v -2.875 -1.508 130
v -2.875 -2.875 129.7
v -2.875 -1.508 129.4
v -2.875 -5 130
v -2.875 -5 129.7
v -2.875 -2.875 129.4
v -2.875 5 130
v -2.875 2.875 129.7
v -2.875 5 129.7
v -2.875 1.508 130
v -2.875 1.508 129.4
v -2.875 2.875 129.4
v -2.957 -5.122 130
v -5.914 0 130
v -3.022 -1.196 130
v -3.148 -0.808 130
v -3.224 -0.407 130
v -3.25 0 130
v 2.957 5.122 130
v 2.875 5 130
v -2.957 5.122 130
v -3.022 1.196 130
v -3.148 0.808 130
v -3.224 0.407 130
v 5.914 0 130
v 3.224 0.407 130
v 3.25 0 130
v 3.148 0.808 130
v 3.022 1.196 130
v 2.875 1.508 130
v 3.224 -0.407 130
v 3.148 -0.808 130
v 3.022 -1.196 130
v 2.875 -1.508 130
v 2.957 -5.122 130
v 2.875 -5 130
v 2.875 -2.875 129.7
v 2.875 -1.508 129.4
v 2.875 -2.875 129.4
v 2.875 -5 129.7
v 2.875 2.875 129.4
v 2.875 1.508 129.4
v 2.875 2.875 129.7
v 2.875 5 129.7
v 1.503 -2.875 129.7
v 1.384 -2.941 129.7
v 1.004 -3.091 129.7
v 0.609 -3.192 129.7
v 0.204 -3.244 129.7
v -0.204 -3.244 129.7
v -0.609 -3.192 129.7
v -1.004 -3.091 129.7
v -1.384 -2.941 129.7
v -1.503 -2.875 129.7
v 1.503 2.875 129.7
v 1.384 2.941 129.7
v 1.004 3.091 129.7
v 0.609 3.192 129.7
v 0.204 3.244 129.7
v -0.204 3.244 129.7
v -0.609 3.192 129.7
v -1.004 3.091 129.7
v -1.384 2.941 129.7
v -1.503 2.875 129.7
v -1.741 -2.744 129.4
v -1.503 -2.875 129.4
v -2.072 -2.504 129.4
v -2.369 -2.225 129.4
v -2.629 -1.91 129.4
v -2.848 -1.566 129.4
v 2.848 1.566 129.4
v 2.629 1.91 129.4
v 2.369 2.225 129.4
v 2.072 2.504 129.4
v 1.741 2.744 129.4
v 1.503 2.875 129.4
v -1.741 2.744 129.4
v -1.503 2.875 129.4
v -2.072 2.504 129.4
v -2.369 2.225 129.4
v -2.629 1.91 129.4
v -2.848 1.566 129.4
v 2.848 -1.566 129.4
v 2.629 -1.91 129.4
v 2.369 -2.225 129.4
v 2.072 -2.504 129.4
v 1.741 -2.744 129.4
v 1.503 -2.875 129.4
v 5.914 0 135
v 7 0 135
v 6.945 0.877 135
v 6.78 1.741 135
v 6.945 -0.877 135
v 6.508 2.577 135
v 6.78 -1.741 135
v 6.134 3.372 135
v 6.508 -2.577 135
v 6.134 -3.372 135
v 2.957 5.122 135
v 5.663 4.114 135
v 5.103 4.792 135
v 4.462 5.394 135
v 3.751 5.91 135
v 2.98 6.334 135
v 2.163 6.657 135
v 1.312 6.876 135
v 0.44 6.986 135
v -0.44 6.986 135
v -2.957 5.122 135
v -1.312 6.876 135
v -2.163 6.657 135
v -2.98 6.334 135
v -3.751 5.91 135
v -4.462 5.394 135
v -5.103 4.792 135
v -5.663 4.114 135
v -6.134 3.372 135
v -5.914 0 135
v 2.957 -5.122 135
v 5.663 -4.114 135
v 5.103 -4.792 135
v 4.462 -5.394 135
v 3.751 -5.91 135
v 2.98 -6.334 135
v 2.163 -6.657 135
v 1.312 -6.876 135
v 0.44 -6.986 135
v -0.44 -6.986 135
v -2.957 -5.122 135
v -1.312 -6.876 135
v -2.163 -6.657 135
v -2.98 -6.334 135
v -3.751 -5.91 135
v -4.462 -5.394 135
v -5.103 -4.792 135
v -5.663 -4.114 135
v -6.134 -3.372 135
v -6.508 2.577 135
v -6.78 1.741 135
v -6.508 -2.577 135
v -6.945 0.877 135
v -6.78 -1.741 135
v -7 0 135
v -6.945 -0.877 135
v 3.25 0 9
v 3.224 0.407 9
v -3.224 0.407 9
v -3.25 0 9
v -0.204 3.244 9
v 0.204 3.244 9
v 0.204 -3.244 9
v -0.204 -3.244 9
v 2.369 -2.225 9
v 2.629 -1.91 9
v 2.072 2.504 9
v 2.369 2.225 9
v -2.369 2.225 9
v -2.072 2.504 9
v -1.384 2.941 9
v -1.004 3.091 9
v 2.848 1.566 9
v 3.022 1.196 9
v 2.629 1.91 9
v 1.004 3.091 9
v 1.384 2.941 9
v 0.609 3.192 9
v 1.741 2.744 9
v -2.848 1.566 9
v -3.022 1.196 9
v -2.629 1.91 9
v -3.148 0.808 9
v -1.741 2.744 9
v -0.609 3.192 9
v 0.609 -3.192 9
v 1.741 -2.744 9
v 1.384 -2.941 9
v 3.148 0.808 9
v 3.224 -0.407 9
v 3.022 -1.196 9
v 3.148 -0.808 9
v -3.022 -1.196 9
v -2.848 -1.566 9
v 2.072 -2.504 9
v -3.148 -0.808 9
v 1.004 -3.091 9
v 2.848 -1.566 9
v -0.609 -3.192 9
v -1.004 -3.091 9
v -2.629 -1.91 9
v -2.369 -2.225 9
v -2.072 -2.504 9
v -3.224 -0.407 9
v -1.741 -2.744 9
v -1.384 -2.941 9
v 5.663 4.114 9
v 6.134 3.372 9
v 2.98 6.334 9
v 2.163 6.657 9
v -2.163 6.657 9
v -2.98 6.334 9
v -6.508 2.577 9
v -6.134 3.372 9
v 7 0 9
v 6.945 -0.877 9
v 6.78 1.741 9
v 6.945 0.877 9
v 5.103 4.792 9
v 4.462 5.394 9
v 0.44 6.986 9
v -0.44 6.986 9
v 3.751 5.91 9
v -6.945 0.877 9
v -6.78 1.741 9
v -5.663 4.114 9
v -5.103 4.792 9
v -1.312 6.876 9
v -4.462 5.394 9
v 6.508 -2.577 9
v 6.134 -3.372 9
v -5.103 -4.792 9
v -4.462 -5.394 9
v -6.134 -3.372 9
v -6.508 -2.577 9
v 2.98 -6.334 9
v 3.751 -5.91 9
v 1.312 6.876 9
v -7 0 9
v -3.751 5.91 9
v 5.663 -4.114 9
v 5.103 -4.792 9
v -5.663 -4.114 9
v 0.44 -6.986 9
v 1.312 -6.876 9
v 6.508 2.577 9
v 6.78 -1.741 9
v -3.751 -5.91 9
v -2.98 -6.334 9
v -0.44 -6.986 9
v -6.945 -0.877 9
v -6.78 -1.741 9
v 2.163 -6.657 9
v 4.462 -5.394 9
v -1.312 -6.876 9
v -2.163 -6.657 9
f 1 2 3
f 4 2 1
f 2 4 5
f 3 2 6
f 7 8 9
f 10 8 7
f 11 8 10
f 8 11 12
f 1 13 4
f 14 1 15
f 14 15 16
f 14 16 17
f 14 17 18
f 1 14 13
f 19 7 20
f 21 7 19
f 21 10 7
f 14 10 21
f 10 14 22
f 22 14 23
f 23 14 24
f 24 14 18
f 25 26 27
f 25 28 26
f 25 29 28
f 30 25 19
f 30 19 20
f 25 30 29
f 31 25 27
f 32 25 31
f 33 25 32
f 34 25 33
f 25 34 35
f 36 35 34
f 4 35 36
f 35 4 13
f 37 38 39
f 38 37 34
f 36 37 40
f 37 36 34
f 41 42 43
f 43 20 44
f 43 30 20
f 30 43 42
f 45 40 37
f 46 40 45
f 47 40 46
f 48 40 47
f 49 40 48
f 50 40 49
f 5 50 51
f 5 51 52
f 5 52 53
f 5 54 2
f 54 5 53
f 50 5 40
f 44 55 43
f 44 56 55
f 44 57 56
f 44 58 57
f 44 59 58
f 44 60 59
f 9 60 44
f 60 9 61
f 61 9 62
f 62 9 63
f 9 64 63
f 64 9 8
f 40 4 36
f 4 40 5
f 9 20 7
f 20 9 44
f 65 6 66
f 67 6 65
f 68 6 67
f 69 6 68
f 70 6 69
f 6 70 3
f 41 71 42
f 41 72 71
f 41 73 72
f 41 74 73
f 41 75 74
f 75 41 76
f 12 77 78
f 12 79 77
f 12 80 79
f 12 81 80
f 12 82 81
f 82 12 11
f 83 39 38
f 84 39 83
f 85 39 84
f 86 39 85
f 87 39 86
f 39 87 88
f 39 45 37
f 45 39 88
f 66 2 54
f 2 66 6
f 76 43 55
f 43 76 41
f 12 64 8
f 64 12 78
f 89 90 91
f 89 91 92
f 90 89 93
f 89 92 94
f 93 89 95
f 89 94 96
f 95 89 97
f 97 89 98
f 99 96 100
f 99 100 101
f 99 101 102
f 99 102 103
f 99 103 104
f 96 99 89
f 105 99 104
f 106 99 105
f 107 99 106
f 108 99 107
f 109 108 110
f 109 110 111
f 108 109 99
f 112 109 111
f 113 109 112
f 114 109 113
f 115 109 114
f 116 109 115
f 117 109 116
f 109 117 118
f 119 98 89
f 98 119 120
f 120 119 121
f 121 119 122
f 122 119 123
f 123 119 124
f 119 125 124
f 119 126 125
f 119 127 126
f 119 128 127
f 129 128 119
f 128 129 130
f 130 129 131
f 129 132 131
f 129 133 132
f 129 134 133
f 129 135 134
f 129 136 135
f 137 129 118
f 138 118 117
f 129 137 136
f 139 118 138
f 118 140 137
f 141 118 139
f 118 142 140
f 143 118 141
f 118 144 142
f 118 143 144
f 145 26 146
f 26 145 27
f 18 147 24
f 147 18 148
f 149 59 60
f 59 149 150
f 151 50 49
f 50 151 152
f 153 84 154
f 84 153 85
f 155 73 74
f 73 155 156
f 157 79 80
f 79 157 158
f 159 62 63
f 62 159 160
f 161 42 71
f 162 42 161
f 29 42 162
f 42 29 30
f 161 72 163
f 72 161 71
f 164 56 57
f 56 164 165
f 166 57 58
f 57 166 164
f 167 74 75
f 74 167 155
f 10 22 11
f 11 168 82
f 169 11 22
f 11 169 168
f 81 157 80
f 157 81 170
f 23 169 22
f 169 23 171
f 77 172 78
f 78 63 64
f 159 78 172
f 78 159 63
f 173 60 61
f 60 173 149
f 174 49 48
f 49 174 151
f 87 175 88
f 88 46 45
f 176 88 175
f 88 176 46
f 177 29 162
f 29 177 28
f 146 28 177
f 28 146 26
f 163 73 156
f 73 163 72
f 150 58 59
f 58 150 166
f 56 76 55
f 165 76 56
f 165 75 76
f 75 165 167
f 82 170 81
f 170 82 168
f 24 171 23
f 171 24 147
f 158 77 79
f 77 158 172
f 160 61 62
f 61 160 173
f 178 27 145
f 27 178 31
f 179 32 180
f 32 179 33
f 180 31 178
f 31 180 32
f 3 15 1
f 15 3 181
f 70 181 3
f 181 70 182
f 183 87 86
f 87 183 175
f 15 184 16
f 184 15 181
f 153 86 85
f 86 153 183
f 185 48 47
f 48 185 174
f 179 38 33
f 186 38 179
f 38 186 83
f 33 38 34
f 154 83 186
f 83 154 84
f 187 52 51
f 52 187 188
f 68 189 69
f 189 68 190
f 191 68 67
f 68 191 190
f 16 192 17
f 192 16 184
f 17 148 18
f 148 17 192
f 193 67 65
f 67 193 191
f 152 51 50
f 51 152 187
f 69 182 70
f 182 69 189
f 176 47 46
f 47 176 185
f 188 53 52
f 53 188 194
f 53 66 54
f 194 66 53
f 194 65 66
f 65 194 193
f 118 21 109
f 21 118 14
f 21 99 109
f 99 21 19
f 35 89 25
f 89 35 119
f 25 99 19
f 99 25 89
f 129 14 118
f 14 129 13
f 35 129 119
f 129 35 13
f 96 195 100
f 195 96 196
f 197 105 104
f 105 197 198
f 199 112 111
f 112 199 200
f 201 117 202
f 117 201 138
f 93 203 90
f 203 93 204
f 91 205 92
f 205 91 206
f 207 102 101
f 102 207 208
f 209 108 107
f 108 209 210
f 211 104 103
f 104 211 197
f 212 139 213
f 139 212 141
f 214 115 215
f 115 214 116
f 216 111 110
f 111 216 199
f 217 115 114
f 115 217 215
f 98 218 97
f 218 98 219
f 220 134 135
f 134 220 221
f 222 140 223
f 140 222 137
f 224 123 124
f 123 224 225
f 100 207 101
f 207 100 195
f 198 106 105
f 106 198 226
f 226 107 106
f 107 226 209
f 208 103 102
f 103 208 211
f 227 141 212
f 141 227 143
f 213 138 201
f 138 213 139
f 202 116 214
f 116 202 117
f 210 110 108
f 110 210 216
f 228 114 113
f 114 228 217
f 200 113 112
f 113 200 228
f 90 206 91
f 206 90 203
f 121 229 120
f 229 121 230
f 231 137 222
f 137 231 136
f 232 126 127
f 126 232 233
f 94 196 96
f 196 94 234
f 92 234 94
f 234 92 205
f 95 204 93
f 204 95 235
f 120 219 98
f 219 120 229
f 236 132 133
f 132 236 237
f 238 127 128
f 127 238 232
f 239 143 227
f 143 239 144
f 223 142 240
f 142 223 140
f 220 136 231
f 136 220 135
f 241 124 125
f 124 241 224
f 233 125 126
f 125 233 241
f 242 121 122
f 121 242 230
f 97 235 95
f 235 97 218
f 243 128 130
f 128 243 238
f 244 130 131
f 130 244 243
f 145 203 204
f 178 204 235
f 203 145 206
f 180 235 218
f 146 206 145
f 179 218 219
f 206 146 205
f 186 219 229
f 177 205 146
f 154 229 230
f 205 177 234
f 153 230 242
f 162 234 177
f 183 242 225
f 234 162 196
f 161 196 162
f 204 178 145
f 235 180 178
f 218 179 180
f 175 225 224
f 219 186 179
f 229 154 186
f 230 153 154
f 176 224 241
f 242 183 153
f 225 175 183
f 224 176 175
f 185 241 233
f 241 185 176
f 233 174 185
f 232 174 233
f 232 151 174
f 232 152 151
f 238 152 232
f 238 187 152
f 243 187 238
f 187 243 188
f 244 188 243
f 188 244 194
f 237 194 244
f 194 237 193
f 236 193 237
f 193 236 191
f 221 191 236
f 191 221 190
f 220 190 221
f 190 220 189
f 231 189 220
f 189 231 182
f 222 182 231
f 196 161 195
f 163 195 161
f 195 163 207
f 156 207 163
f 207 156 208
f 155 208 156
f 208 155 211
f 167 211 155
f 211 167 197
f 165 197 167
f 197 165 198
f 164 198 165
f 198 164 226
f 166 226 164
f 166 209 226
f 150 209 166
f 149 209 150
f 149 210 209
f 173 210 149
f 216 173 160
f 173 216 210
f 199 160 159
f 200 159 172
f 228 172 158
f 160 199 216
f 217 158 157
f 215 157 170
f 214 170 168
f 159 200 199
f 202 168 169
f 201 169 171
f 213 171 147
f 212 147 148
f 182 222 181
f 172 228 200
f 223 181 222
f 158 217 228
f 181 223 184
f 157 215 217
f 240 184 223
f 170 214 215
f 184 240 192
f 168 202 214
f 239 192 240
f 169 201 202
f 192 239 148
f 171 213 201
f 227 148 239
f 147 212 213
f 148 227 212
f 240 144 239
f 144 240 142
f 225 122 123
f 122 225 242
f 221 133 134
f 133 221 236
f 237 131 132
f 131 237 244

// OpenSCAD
$fn = 50;


difference() {
	union() {
		translate(v = [0, 0, 9.0000000000]) {
			cylinder(h = 126, r = 7.0000000000);
		}
	}
	union() {
		translate(v = [0, 0, 135]) {
			rotate(a = [0, 0, 0]) {
				difference() {
					union() {
						#translate(v = [-2.8750000000, -5.0000000000, -5.3000000000]) {
							cube(size = [5.7500000000, 10, 0.3000000000]);
						}
						#translate(v = [-2.8750000000, -2.8750000000, -5.6000000000]) {
							cube(size = [5.7500000000, 5.7500000000, 0.3000000000]);
						}
						#translate(v = [-2.8750000000, -5.0000000000, 0]) {
							cube(size = [5.7500000000, 10, 0.3000000000]);
						}
						#translate(v = [-2.8750000000, -2.8750000000, 0.3000000000]) {
							cube(size = [5.7500000000, 5.7500000000, 0.3000000000]);
						}
						#translate(v = [0, 0, -100.0000000000]) {
							cylinder(h = 200, r = 3.2500000000);
						}
						translate(v = [0, 0, -5]) {
							#linear_extrude(height = 5) {
								polygon(points = [[5.9142500000, 0.0000000000], [2.9571250000, 5.1218907443], [-2.9571250000, 5.1218907443], [-5.9142500000, 0.0000000000], [-2.9571250000, -5.1218907443], [2.9571250000, -5.1218907443]]);
							}
						}
						#translate(v = [-2.8750000000, -5.0000000000, -5.3000000000]) {
							cube(size = [5.7500000000, 10, 0.3000000000]);
						}
						#translate(v = [-2.8750000000, -2.8750000000, -5.6000000000]) {
							cube(size = [5.7500000000, 5.7500000000, 0.3000000000]);
						}
						#translate(v = [-2.8750000000, -5.0000000000, 0]) {
							cube(size = [5.7500000000, 10, 0.3000000000]);
						}
						#translate(v = [-2.8750000000, -2.8750000000, 0.3000000000]) {
							cube(size = [5.7500000000, 5.7500000000, 0.3000000000]);
						}
						#translate(v = [0, 0, -100.0000000000]) {
							cylinder(h = 200, r = 3.2500000000);
						}
						#translate(v = [-2.8750000000, -5.0000000000, -5.3000000000]) {
							cube(size = [5.7500000000, 10, 0.3000000000]);
						}
						#translate(v = [-2.8750000000, -2.8750000000, -5.6000000000]) {
							cube(size = [5.7500000000, 5.7500000000, 0.3000000000]);
						}
						#translate(v = [-2.8750000000, -5.0000000000, 0]) {
							cube(size = [5.7500000000, 10, 0.3000000000]);
						}
						#translate(v = [-2.8750000000, -2.8750000000, 0.3000000000]) {
							cube(size = [5.7500000000, 5.7500000000, 0.3000000000]);
						}
						#translate(v = [0, 0, -100.0000000000]) {
							cylinder(h = 200, r = 3.2500000000);
						}
					}
					union();
				}
			}
		}
		#translate(v = [0, 0, -100.0000000000]) {
			cylinder(h = 200, r = 3.2500000000);
		}
	}
}
